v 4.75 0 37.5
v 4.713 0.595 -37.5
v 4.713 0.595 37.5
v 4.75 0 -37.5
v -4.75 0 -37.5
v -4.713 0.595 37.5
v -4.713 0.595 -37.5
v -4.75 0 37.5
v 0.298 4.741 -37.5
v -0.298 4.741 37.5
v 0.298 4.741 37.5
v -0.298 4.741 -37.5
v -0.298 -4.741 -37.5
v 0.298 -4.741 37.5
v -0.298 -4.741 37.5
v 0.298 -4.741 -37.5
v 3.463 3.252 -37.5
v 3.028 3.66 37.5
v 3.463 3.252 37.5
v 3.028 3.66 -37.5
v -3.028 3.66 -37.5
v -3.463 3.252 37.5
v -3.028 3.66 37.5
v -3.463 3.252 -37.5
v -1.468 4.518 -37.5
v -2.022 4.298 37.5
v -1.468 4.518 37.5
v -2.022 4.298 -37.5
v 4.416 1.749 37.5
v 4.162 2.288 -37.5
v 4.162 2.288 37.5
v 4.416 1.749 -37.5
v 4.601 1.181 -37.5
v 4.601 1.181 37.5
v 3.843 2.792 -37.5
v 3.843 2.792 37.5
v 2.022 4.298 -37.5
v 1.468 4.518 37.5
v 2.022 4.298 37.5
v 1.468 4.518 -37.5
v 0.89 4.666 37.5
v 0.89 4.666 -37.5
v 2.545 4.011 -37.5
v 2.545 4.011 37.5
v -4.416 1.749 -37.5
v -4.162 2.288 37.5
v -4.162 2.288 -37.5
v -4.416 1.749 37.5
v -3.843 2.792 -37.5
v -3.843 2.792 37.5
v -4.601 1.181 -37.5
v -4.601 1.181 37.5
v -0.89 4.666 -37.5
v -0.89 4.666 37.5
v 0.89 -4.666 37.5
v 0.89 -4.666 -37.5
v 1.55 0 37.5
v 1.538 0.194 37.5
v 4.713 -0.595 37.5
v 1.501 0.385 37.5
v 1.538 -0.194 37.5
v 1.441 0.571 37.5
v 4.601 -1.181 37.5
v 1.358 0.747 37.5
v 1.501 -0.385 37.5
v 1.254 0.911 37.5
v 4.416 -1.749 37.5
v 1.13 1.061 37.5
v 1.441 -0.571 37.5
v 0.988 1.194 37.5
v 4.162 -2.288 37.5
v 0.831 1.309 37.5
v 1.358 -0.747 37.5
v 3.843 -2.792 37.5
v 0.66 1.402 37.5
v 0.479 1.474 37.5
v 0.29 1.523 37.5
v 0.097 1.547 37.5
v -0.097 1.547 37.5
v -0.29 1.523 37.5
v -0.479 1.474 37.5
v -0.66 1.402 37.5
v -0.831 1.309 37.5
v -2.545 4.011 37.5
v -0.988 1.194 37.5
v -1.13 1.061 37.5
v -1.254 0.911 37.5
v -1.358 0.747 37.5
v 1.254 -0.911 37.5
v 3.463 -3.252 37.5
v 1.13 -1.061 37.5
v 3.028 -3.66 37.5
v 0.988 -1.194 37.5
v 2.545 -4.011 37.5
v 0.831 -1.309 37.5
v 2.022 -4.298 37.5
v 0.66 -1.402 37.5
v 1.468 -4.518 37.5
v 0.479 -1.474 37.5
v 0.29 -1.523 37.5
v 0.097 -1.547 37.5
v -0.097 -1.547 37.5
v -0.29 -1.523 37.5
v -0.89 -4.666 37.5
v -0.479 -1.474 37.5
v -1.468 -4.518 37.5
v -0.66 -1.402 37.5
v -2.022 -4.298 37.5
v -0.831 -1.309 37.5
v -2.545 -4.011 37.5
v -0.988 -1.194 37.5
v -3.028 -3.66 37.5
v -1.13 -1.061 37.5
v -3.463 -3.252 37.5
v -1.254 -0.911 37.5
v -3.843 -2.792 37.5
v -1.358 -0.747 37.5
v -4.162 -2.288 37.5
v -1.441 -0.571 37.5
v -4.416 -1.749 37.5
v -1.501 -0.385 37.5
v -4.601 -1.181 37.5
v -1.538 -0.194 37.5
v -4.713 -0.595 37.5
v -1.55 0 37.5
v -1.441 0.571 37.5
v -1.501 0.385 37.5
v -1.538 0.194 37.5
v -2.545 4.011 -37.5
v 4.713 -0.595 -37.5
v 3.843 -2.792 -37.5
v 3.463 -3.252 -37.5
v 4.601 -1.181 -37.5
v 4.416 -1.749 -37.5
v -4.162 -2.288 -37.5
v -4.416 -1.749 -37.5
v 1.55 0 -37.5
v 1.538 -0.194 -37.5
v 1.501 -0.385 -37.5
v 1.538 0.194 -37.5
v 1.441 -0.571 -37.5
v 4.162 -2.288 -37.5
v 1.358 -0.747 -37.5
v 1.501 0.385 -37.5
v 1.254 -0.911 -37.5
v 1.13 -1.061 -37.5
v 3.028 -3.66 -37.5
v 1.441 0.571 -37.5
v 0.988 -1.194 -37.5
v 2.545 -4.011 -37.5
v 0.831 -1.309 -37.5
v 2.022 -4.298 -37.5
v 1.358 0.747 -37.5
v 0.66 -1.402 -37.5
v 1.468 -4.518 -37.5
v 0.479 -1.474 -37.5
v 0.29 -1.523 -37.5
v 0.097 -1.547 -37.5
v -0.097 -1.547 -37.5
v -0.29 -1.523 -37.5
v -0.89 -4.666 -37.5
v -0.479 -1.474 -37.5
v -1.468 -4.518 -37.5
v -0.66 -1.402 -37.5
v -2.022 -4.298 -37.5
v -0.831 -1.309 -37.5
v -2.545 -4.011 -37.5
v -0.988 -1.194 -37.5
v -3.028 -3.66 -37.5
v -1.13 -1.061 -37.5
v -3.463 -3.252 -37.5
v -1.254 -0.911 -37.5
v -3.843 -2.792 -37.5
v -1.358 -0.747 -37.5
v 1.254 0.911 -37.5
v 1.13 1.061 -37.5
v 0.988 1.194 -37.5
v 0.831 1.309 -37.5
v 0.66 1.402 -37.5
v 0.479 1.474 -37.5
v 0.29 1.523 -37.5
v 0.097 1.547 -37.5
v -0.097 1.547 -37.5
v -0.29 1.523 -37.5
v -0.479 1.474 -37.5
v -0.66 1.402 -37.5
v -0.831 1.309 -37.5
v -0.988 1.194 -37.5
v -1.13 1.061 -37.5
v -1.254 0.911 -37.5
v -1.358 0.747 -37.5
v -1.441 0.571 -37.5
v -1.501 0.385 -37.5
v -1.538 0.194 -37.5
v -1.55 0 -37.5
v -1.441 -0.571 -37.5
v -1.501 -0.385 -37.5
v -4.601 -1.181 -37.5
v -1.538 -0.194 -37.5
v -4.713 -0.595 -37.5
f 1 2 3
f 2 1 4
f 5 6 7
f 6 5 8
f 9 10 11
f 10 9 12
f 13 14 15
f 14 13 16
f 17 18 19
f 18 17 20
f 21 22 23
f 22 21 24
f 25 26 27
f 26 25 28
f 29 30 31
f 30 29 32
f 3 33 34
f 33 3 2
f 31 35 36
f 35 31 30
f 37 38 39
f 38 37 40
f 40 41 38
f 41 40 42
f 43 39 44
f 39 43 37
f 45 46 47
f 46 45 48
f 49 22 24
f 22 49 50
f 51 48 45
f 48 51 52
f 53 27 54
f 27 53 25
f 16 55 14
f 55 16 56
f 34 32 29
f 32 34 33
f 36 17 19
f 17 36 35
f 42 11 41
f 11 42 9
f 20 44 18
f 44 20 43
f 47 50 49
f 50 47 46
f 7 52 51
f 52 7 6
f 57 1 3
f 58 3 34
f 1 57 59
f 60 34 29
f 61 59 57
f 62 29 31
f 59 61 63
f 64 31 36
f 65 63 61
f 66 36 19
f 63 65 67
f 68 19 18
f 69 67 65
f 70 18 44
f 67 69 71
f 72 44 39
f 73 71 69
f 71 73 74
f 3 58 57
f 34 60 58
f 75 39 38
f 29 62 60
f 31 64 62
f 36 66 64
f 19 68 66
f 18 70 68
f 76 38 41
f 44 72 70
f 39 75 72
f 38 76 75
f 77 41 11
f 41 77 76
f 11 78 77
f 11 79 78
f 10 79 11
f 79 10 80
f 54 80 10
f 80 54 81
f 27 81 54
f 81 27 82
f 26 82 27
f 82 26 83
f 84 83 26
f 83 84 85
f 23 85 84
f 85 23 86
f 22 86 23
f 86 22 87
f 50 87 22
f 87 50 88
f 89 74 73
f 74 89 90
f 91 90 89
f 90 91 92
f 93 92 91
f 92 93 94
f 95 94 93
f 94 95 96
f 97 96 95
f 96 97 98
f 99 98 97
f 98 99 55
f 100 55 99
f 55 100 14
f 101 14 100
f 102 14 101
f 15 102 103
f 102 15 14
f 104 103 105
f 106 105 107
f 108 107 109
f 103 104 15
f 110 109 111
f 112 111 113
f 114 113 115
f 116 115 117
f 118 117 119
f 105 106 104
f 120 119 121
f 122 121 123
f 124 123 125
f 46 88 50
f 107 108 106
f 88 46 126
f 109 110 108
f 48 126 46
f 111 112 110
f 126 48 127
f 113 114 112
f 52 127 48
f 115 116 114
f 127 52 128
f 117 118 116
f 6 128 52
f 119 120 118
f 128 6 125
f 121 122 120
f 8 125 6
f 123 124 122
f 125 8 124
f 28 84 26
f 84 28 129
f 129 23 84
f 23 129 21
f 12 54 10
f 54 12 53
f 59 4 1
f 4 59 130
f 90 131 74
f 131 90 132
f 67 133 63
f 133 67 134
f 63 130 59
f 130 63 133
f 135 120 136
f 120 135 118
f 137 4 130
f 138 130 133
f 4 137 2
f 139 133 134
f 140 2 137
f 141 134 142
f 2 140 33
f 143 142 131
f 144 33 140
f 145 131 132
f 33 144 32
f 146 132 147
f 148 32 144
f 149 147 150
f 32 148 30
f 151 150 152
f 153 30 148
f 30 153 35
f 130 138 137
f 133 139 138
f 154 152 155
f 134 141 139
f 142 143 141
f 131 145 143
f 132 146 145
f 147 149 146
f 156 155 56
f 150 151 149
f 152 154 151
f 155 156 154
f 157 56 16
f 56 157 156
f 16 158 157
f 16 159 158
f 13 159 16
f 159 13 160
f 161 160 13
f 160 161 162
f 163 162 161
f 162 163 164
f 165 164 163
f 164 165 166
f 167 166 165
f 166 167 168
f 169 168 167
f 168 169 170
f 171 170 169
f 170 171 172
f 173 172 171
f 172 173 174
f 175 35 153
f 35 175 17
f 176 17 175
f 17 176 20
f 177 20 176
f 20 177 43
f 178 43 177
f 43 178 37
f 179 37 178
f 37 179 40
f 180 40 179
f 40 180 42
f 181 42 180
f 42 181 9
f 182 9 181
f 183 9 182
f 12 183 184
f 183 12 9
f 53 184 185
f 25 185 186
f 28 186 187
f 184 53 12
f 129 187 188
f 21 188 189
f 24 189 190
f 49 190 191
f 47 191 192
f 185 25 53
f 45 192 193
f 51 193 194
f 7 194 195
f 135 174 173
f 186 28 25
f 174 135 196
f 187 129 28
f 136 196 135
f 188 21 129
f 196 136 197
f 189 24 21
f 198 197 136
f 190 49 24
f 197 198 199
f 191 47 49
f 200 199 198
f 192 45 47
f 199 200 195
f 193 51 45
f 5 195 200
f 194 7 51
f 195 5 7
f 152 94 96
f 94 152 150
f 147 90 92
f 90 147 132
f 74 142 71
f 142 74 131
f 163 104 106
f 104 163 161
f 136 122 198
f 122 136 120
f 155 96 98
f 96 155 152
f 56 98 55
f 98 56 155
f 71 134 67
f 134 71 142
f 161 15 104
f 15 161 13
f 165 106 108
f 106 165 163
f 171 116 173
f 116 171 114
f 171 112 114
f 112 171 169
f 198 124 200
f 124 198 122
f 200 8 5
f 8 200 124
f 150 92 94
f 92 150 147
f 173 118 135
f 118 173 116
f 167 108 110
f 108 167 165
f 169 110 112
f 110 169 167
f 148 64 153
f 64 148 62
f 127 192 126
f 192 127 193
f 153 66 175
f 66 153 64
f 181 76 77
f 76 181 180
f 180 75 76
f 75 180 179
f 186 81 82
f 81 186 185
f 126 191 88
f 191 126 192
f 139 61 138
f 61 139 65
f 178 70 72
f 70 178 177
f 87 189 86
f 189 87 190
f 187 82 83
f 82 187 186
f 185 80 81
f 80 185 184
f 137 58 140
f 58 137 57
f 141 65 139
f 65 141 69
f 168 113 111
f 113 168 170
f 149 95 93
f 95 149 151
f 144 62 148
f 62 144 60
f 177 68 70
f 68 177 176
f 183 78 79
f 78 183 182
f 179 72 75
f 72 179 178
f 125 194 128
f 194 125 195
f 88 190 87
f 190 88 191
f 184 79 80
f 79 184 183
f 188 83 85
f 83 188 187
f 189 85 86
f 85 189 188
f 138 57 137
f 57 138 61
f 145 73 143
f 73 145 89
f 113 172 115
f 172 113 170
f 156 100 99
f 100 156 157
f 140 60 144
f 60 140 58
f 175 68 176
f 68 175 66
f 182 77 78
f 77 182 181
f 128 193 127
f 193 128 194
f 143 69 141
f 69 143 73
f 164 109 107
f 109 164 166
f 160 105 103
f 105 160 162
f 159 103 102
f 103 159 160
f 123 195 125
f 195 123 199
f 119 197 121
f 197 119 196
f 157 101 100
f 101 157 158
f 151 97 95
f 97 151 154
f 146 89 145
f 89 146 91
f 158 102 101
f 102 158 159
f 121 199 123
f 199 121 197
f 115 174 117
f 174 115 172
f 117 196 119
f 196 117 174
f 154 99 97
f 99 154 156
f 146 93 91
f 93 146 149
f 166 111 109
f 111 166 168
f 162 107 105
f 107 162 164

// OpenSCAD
$fn = 50;


difference() {
	union() {
		translate(v = [0, 0, -37.5000000000]) {
			cylinder(h = 75, r = 4.7500000000);
		}
	}
	union() {
		translate(v = [0, 0, -100.0000000000]) {
			cylinder(h = 200, r = 1.5500000000);
		}
	}
}
